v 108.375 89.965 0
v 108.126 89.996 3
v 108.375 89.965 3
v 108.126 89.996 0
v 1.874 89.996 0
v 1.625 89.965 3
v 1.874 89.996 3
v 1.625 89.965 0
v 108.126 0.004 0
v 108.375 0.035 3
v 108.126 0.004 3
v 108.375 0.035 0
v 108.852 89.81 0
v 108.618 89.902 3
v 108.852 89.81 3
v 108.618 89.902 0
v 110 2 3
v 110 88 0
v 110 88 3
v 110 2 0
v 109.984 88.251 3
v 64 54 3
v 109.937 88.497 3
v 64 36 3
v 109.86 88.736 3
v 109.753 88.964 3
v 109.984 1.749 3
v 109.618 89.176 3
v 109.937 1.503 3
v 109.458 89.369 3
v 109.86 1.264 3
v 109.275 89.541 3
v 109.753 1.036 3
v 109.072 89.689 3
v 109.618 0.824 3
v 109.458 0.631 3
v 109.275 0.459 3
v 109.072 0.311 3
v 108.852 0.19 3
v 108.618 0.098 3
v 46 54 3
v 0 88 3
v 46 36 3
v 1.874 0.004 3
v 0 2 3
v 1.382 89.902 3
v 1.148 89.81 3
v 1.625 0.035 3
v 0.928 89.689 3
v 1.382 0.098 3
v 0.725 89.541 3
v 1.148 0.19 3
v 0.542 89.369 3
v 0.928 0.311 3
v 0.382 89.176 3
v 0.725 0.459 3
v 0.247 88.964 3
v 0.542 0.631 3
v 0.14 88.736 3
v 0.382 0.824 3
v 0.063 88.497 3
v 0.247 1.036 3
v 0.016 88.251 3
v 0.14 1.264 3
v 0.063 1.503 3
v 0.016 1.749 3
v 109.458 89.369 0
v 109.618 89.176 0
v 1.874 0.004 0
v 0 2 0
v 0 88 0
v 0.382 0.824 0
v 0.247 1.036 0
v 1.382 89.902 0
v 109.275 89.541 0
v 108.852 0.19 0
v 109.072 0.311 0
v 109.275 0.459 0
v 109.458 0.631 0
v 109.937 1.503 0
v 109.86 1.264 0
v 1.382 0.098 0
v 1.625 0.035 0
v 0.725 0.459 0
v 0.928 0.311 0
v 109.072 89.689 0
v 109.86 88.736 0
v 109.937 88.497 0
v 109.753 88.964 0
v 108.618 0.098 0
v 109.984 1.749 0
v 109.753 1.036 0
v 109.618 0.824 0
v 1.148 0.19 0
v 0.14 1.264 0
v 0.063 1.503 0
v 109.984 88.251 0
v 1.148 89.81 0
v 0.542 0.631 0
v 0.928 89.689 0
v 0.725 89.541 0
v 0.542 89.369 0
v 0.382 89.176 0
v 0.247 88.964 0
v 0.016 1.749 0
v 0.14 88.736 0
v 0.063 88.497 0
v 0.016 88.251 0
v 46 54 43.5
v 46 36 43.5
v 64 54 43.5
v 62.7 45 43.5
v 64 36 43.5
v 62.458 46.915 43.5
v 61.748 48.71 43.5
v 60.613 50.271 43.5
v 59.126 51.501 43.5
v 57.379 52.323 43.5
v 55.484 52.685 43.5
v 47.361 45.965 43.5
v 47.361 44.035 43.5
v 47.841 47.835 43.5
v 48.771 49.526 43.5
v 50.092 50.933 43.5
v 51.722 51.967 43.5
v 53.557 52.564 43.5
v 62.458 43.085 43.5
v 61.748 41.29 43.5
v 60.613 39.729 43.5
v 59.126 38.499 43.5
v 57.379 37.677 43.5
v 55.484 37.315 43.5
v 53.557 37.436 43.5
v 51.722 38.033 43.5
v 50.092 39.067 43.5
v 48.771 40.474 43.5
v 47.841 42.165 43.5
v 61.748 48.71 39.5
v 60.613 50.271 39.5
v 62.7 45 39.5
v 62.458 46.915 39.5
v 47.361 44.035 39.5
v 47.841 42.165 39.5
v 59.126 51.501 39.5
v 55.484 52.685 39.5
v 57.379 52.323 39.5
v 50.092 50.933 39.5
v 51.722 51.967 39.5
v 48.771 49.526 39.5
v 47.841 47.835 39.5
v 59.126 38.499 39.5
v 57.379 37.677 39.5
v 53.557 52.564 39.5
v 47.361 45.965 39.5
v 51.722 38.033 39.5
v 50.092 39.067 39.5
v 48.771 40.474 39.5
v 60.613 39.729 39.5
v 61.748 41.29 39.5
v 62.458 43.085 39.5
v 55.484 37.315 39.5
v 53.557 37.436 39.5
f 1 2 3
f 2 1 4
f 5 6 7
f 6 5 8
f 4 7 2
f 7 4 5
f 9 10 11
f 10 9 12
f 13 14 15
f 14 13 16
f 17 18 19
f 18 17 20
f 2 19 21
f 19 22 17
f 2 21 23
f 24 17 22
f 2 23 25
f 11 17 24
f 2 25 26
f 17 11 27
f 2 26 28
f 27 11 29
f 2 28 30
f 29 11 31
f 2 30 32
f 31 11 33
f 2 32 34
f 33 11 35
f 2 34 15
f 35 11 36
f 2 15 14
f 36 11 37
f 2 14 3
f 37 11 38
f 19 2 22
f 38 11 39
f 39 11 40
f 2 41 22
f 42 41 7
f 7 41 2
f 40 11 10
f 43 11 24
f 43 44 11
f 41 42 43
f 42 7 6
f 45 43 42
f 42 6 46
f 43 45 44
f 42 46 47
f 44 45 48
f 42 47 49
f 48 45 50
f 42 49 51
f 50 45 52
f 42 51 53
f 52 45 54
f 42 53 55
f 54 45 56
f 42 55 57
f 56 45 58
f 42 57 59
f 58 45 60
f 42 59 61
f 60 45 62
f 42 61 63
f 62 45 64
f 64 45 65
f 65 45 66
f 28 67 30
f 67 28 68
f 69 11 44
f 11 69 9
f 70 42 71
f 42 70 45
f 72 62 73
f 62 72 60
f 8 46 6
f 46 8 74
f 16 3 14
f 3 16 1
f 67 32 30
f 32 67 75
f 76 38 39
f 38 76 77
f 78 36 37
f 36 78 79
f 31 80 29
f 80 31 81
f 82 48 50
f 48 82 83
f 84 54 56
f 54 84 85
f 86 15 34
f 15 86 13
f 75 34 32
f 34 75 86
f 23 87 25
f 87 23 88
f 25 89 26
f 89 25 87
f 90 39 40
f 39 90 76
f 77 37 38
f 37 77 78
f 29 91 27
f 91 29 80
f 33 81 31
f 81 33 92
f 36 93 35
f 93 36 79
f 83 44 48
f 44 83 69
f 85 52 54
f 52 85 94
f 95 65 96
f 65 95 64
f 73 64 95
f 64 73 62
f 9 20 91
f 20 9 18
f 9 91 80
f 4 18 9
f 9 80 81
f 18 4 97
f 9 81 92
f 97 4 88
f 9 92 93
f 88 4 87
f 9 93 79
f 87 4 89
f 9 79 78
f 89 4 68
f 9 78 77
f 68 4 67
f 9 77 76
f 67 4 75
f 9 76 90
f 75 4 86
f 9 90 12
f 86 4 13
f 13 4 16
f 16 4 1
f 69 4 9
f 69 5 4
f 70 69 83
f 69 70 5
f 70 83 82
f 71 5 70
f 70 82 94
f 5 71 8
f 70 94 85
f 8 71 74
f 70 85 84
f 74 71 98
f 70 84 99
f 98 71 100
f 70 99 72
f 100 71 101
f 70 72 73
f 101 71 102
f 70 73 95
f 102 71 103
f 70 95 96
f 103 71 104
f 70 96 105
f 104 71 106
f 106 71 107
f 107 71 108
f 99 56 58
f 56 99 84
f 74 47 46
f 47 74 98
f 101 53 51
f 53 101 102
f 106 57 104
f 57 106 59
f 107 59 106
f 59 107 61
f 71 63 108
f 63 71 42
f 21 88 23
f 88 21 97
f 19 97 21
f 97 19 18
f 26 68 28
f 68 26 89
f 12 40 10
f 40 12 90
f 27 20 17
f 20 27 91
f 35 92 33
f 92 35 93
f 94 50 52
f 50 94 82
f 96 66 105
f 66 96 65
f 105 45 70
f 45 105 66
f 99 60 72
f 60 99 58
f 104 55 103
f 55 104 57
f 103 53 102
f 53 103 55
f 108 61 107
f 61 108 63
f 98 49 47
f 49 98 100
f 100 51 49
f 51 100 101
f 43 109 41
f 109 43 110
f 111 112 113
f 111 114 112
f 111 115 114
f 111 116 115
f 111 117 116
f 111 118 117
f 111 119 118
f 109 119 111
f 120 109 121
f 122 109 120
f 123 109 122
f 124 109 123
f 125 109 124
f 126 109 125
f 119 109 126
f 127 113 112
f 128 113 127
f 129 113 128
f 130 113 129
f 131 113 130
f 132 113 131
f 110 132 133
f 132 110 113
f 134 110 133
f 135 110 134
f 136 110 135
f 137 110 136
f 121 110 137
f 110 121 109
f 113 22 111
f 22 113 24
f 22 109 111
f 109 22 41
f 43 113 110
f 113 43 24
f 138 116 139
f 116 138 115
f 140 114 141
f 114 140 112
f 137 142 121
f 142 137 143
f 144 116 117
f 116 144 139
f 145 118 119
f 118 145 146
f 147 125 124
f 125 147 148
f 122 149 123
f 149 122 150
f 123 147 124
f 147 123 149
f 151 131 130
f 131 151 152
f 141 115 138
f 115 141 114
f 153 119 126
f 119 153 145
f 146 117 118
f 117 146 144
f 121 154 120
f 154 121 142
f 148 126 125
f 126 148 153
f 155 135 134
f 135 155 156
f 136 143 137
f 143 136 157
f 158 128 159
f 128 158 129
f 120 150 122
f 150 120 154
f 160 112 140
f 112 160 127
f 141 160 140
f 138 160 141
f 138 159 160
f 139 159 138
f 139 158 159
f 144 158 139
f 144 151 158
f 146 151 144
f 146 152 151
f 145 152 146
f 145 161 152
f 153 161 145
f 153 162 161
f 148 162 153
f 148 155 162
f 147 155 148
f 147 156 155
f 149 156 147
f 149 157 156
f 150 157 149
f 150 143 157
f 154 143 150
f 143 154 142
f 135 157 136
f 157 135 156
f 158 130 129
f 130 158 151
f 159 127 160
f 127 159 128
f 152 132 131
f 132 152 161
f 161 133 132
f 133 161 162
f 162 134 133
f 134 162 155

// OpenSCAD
width = 90;
length = 110;
height = 3;
magnetHoleWidth = 19;
floorThickness = 3;

//Based on magnet size:
pillarHeight = 43.5;
pillarSideLength = 18;
magnetBaseInnerDiameter = 15.4;
magnetHeight = 4.0;

spaceBetweenCircles = 2;


difference() {
union(){
    $fn=50;
    minkowski()
    {
      translate([2,2,0])
        cube([length-4, width-4, height - 1]);
      cylinder(r=2,h=1);
    }
   
    translate([length/2 - ((pillarSideLength)/2), width/2 - ((pillarSideLength)/2), 0])
        cube([pillarSideLength, pillarSideLength, pillarHeight]);
        

}
    translate([length/2,  width/2, pillarHeight - magnetHeight])
        cylinder(magnetHeight, d=magnetBaseInnerDiameter);

}
